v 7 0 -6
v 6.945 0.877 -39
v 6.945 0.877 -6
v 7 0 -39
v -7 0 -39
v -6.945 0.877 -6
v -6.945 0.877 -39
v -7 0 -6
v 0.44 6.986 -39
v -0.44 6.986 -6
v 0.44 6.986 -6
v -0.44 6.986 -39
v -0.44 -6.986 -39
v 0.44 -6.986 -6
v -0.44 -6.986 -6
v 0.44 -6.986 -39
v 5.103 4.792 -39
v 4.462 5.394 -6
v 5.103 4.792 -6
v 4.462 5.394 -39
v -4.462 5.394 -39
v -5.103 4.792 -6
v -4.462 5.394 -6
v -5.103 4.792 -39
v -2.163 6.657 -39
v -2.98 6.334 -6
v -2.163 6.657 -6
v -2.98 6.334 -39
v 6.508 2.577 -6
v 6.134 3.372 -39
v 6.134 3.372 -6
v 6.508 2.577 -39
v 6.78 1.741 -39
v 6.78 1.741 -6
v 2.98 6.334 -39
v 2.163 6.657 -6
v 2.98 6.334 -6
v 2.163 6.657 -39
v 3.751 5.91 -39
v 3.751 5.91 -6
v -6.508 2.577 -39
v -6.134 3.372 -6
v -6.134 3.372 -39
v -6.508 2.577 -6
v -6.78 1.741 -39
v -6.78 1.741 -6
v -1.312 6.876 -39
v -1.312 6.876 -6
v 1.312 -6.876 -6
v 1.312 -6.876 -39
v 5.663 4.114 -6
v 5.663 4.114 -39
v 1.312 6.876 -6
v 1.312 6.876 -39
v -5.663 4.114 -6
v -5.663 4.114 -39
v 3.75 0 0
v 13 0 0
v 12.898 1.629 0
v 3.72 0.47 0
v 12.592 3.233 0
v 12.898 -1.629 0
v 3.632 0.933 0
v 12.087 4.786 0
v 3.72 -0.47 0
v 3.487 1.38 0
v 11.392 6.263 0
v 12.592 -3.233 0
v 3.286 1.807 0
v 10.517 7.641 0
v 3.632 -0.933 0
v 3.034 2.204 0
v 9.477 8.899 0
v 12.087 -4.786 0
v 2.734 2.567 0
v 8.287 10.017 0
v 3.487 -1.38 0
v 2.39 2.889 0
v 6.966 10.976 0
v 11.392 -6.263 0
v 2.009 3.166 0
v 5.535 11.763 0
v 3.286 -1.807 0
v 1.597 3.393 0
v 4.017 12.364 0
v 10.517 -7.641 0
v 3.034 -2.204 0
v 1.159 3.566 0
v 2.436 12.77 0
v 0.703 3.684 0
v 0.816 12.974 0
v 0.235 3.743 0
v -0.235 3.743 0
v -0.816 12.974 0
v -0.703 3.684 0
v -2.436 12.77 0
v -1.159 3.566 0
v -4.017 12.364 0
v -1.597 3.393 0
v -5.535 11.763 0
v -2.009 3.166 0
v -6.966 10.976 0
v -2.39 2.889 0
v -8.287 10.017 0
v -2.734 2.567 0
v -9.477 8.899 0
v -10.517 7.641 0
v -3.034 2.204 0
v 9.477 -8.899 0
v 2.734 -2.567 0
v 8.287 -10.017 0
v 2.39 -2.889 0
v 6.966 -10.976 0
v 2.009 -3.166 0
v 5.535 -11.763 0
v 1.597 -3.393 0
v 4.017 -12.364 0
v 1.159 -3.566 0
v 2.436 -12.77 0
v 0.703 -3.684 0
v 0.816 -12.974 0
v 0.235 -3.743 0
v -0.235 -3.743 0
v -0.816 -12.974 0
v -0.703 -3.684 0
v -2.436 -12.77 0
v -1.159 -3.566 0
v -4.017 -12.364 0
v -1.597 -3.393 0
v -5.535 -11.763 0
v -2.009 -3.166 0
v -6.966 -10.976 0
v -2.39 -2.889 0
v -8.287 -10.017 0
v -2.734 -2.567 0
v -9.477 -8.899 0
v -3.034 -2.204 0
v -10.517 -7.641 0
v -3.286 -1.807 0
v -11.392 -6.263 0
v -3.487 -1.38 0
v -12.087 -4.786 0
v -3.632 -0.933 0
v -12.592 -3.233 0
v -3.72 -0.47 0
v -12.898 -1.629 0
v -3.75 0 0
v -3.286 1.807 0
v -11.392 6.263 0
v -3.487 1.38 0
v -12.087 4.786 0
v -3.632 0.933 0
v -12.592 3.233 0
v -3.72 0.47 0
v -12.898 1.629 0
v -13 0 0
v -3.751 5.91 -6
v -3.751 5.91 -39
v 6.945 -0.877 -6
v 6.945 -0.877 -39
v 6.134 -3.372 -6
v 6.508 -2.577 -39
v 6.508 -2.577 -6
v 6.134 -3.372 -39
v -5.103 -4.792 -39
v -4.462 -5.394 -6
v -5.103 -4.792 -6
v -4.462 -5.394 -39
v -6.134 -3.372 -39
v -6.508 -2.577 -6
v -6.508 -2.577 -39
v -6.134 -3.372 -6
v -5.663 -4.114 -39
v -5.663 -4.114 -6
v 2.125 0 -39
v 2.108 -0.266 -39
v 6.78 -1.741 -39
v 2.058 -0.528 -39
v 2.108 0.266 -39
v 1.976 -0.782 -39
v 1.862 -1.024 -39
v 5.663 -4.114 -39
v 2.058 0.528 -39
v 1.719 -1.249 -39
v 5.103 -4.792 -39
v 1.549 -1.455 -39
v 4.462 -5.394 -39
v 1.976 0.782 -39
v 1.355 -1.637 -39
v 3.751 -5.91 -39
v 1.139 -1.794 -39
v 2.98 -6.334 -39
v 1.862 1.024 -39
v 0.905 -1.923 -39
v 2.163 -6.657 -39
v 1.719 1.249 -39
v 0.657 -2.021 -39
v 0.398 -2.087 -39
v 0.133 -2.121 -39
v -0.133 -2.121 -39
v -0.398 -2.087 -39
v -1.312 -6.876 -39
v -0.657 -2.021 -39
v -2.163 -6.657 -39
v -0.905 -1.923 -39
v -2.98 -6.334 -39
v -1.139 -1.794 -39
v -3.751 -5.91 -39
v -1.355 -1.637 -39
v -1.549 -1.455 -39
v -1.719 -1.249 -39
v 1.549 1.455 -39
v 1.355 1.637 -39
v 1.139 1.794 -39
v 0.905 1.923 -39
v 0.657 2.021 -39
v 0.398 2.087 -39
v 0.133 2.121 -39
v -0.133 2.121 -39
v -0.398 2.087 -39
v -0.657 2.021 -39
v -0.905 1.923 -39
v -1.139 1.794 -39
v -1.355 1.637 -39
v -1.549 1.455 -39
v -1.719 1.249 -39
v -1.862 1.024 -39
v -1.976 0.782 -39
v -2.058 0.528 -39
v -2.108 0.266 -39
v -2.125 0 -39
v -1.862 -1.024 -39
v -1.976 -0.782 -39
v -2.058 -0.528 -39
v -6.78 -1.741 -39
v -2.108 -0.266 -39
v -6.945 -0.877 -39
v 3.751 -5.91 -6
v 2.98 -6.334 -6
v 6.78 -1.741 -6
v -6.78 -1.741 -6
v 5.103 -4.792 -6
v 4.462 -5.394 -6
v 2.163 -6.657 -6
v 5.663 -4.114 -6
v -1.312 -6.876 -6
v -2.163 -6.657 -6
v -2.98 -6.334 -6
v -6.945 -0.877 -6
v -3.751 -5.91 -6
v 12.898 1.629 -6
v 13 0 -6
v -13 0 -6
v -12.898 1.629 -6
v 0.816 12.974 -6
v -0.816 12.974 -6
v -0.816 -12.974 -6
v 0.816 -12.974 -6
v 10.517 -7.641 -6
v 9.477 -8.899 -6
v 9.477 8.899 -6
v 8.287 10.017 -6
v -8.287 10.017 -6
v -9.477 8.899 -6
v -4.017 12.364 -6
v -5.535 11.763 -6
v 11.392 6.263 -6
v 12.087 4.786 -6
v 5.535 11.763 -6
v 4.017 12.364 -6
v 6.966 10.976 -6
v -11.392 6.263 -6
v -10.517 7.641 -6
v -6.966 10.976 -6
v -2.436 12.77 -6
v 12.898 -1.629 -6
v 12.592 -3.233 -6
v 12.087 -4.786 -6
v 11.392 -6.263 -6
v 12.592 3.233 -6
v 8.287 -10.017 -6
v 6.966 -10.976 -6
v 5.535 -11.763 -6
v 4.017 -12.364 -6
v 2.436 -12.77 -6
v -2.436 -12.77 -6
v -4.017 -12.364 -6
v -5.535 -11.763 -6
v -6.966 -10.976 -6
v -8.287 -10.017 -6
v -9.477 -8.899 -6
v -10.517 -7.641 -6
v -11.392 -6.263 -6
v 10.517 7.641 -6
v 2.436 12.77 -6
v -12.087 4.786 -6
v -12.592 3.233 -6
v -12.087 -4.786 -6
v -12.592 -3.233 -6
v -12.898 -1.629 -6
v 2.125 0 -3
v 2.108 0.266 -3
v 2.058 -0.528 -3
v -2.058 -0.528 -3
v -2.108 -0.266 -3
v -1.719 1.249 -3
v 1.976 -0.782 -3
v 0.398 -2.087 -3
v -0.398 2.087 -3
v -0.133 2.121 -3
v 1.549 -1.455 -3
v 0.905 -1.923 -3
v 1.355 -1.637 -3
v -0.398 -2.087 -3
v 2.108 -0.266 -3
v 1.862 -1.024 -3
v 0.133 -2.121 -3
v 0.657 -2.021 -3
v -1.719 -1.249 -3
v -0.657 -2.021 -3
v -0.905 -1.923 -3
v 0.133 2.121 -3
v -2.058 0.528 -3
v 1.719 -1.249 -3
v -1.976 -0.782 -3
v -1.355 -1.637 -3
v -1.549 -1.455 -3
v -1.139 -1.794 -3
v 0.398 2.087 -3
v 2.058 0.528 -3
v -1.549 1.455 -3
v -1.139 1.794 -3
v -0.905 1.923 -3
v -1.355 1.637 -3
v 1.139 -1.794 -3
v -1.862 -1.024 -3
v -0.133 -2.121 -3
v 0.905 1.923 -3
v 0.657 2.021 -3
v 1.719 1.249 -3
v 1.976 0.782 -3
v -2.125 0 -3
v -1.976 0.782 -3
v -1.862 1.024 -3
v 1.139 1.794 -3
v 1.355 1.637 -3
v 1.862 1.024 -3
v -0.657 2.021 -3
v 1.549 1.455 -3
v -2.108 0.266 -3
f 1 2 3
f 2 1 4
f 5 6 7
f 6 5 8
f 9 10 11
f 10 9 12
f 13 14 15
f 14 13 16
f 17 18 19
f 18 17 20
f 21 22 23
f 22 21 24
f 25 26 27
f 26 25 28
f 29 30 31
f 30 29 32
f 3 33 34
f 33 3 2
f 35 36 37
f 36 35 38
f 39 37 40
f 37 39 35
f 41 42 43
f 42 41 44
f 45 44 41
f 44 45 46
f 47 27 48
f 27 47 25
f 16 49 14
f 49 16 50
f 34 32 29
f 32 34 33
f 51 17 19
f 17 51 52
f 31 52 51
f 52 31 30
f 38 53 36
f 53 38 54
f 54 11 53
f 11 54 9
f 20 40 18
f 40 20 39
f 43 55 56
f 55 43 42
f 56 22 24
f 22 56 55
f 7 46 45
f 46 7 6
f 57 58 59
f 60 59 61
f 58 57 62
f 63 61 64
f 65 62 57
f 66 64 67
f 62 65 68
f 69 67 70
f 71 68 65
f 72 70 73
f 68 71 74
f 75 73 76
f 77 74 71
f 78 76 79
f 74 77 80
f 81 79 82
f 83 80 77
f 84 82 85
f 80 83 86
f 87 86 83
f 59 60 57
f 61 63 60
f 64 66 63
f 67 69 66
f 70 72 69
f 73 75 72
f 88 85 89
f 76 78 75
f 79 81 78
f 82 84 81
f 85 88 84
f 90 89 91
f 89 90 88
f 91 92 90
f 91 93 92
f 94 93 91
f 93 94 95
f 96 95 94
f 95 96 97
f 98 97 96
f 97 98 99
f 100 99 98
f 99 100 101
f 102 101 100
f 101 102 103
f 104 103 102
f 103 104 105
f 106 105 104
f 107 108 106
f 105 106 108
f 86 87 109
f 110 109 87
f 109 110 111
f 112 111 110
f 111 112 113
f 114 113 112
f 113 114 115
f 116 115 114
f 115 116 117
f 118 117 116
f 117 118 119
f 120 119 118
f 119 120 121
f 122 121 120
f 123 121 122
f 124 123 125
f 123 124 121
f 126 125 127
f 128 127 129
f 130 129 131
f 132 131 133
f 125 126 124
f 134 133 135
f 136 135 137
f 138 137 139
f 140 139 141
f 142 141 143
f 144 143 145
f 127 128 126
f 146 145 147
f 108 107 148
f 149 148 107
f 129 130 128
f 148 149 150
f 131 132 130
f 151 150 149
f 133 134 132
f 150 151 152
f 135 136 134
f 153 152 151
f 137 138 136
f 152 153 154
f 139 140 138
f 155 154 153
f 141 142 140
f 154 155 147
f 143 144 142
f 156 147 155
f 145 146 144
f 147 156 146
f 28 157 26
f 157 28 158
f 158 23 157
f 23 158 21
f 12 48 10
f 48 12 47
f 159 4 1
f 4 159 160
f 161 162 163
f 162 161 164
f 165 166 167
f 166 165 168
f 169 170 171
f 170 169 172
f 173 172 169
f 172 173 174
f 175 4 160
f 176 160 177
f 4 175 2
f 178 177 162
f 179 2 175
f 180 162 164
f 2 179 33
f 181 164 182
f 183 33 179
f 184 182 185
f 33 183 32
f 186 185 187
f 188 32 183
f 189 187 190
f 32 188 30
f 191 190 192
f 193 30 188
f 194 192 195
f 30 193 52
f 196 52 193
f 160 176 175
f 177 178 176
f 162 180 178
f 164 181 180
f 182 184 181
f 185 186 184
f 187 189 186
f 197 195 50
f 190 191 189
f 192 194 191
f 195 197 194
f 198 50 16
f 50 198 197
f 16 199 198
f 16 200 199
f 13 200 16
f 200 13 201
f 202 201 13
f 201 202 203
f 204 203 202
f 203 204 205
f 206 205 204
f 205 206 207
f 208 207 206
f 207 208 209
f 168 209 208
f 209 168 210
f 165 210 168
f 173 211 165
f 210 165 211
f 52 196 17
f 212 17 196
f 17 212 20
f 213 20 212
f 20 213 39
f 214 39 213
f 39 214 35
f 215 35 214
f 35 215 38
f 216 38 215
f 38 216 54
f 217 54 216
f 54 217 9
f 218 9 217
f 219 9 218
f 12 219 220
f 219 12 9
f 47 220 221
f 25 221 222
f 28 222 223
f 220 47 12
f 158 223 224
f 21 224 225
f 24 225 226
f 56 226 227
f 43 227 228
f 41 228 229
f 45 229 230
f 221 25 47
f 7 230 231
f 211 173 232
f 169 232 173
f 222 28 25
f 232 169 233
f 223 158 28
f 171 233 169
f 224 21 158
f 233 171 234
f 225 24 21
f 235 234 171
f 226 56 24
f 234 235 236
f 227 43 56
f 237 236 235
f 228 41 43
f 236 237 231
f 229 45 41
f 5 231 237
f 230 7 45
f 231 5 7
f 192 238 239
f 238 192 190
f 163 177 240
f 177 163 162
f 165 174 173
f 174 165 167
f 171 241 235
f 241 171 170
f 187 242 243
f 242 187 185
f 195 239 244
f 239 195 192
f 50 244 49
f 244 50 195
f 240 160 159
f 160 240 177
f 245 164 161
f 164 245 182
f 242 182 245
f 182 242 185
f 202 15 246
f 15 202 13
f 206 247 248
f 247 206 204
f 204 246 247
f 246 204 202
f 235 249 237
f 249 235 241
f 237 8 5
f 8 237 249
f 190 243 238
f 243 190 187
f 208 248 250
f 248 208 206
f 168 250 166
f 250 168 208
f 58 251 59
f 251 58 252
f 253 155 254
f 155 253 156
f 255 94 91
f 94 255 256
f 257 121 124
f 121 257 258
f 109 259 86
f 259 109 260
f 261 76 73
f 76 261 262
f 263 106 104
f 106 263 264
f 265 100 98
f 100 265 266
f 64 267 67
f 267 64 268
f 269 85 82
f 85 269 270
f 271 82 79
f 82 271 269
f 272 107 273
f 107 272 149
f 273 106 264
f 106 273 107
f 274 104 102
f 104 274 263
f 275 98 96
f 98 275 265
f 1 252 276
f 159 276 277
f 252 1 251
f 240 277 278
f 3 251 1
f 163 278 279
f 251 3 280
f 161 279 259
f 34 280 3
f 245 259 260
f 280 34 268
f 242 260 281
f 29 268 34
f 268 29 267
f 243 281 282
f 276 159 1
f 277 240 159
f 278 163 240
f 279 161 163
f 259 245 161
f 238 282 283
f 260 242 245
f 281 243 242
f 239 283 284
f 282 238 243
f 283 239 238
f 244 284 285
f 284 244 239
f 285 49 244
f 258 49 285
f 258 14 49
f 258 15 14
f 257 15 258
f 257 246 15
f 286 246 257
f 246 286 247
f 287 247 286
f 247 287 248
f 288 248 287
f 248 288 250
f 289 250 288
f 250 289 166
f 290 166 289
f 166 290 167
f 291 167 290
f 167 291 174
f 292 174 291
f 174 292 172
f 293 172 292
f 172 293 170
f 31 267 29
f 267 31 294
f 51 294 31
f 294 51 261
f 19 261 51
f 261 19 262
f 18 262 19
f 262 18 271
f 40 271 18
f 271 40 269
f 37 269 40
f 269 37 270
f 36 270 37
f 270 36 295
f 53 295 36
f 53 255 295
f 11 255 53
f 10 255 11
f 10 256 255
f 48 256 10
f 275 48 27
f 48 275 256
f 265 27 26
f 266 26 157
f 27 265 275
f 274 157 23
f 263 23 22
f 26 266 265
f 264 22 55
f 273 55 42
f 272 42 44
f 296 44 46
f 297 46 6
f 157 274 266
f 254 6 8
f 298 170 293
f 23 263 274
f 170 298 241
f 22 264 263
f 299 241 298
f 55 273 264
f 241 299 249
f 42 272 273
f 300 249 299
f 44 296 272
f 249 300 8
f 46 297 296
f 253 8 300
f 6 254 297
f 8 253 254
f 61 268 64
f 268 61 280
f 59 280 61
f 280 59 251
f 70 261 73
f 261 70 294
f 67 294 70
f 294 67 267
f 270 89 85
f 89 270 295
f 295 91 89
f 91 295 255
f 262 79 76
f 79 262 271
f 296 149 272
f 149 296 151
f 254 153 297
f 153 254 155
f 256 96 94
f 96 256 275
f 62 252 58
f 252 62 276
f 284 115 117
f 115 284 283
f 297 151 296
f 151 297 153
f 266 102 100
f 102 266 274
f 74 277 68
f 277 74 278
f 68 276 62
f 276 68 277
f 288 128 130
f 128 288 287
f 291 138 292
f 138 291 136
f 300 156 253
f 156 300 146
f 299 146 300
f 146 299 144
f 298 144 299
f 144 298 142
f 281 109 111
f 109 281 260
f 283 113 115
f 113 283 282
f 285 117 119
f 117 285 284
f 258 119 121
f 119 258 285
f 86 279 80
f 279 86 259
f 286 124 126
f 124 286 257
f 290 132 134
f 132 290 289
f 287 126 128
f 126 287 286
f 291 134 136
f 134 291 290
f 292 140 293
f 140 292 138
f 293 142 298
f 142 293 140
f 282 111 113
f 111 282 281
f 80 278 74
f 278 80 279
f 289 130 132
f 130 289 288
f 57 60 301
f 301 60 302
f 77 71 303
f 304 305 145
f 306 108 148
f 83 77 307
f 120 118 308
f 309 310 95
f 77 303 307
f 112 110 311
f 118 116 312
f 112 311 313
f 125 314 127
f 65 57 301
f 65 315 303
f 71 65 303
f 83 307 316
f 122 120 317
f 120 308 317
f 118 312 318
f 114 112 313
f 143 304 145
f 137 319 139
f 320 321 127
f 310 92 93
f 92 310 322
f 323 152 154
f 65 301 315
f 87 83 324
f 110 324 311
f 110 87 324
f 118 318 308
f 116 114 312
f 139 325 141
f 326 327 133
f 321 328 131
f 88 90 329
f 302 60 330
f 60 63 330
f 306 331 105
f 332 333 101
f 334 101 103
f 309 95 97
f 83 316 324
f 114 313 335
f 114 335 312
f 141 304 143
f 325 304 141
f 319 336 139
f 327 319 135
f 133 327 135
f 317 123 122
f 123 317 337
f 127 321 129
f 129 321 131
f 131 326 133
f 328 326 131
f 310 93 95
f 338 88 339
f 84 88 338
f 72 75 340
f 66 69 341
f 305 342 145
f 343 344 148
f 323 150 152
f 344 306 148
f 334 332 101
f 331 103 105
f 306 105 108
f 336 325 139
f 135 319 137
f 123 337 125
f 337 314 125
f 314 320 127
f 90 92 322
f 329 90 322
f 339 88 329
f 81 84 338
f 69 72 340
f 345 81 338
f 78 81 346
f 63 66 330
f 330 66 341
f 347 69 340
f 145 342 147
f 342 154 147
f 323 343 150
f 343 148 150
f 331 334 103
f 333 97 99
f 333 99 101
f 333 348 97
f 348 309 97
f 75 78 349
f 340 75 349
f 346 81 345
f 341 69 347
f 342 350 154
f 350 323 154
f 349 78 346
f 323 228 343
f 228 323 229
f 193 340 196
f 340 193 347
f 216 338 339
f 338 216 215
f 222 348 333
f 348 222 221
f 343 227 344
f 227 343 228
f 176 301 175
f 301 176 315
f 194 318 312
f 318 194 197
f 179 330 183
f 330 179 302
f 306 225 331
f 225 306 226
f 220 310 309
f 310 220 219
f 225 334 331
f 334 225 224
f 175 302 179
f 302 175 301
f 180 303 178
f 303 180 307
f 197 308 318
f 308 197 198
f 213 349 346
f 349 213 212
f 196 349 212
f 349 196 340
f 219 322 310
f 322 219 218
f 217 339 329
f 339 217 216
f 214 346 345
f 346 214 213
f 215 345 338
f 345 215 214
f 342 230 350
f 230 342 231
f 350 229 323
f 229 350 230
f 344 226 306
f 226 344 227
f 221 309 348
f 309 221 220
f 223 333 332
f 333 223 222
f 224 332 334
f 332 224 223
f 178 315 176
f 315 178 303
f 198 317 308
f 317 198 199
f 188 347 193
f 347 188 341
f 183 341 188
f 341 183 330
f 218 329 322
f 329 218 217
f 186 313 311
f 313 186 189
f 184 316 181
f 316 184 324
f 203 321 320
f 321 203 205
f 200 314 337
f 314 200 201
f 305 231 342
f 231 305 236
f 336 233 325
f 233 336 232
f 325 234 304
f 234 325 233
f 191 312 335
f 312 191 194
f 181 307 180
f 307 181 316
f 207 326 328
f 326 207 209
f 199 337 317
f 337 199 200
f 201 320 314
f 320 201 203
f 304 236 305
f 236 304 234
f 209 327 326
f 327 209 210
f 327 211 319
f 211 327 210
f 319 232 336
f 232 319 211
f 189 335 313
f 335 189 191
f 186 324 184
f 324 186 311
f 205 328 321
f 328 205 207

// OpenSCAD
$fn = 50;


difference() {
	union() {
		translate(v = [0, 0, -39.0000000000]) {
			cylinder(h = 39, r = 7.0000000000);
		}
		translate(v = [0, 0, -6.0000000000]) {
			cylinder(h = 6, r = 13.0000000000);
		}
	}
	union() {
		translate(v = [0, 0, 0]) {
			rotate(a = [0, 0, 0]) {
				difference() {
					union() {
						#translate(v = [0, 0, -39.0000000000]) {
							cylinder(h = 39, r = 2.0000000000);
						}
						#translate(v = [0, 0, -3]) {
							cylinder(h = 3, r = 7.0000000000, r1 = 2.1250000000, r2 = 3.7500000000);
						}
						#translate(v = [0, 0, -39.0000000000]) {
							cylinder(h = 39, r = 2.1250000000);
						}
						#translate(v = [0, 0, -39.0000000000]) {
							cylinder(h = 39, r = 2.0000000000);
						}
					}
					union();
				}
			}
		}
	}
}
